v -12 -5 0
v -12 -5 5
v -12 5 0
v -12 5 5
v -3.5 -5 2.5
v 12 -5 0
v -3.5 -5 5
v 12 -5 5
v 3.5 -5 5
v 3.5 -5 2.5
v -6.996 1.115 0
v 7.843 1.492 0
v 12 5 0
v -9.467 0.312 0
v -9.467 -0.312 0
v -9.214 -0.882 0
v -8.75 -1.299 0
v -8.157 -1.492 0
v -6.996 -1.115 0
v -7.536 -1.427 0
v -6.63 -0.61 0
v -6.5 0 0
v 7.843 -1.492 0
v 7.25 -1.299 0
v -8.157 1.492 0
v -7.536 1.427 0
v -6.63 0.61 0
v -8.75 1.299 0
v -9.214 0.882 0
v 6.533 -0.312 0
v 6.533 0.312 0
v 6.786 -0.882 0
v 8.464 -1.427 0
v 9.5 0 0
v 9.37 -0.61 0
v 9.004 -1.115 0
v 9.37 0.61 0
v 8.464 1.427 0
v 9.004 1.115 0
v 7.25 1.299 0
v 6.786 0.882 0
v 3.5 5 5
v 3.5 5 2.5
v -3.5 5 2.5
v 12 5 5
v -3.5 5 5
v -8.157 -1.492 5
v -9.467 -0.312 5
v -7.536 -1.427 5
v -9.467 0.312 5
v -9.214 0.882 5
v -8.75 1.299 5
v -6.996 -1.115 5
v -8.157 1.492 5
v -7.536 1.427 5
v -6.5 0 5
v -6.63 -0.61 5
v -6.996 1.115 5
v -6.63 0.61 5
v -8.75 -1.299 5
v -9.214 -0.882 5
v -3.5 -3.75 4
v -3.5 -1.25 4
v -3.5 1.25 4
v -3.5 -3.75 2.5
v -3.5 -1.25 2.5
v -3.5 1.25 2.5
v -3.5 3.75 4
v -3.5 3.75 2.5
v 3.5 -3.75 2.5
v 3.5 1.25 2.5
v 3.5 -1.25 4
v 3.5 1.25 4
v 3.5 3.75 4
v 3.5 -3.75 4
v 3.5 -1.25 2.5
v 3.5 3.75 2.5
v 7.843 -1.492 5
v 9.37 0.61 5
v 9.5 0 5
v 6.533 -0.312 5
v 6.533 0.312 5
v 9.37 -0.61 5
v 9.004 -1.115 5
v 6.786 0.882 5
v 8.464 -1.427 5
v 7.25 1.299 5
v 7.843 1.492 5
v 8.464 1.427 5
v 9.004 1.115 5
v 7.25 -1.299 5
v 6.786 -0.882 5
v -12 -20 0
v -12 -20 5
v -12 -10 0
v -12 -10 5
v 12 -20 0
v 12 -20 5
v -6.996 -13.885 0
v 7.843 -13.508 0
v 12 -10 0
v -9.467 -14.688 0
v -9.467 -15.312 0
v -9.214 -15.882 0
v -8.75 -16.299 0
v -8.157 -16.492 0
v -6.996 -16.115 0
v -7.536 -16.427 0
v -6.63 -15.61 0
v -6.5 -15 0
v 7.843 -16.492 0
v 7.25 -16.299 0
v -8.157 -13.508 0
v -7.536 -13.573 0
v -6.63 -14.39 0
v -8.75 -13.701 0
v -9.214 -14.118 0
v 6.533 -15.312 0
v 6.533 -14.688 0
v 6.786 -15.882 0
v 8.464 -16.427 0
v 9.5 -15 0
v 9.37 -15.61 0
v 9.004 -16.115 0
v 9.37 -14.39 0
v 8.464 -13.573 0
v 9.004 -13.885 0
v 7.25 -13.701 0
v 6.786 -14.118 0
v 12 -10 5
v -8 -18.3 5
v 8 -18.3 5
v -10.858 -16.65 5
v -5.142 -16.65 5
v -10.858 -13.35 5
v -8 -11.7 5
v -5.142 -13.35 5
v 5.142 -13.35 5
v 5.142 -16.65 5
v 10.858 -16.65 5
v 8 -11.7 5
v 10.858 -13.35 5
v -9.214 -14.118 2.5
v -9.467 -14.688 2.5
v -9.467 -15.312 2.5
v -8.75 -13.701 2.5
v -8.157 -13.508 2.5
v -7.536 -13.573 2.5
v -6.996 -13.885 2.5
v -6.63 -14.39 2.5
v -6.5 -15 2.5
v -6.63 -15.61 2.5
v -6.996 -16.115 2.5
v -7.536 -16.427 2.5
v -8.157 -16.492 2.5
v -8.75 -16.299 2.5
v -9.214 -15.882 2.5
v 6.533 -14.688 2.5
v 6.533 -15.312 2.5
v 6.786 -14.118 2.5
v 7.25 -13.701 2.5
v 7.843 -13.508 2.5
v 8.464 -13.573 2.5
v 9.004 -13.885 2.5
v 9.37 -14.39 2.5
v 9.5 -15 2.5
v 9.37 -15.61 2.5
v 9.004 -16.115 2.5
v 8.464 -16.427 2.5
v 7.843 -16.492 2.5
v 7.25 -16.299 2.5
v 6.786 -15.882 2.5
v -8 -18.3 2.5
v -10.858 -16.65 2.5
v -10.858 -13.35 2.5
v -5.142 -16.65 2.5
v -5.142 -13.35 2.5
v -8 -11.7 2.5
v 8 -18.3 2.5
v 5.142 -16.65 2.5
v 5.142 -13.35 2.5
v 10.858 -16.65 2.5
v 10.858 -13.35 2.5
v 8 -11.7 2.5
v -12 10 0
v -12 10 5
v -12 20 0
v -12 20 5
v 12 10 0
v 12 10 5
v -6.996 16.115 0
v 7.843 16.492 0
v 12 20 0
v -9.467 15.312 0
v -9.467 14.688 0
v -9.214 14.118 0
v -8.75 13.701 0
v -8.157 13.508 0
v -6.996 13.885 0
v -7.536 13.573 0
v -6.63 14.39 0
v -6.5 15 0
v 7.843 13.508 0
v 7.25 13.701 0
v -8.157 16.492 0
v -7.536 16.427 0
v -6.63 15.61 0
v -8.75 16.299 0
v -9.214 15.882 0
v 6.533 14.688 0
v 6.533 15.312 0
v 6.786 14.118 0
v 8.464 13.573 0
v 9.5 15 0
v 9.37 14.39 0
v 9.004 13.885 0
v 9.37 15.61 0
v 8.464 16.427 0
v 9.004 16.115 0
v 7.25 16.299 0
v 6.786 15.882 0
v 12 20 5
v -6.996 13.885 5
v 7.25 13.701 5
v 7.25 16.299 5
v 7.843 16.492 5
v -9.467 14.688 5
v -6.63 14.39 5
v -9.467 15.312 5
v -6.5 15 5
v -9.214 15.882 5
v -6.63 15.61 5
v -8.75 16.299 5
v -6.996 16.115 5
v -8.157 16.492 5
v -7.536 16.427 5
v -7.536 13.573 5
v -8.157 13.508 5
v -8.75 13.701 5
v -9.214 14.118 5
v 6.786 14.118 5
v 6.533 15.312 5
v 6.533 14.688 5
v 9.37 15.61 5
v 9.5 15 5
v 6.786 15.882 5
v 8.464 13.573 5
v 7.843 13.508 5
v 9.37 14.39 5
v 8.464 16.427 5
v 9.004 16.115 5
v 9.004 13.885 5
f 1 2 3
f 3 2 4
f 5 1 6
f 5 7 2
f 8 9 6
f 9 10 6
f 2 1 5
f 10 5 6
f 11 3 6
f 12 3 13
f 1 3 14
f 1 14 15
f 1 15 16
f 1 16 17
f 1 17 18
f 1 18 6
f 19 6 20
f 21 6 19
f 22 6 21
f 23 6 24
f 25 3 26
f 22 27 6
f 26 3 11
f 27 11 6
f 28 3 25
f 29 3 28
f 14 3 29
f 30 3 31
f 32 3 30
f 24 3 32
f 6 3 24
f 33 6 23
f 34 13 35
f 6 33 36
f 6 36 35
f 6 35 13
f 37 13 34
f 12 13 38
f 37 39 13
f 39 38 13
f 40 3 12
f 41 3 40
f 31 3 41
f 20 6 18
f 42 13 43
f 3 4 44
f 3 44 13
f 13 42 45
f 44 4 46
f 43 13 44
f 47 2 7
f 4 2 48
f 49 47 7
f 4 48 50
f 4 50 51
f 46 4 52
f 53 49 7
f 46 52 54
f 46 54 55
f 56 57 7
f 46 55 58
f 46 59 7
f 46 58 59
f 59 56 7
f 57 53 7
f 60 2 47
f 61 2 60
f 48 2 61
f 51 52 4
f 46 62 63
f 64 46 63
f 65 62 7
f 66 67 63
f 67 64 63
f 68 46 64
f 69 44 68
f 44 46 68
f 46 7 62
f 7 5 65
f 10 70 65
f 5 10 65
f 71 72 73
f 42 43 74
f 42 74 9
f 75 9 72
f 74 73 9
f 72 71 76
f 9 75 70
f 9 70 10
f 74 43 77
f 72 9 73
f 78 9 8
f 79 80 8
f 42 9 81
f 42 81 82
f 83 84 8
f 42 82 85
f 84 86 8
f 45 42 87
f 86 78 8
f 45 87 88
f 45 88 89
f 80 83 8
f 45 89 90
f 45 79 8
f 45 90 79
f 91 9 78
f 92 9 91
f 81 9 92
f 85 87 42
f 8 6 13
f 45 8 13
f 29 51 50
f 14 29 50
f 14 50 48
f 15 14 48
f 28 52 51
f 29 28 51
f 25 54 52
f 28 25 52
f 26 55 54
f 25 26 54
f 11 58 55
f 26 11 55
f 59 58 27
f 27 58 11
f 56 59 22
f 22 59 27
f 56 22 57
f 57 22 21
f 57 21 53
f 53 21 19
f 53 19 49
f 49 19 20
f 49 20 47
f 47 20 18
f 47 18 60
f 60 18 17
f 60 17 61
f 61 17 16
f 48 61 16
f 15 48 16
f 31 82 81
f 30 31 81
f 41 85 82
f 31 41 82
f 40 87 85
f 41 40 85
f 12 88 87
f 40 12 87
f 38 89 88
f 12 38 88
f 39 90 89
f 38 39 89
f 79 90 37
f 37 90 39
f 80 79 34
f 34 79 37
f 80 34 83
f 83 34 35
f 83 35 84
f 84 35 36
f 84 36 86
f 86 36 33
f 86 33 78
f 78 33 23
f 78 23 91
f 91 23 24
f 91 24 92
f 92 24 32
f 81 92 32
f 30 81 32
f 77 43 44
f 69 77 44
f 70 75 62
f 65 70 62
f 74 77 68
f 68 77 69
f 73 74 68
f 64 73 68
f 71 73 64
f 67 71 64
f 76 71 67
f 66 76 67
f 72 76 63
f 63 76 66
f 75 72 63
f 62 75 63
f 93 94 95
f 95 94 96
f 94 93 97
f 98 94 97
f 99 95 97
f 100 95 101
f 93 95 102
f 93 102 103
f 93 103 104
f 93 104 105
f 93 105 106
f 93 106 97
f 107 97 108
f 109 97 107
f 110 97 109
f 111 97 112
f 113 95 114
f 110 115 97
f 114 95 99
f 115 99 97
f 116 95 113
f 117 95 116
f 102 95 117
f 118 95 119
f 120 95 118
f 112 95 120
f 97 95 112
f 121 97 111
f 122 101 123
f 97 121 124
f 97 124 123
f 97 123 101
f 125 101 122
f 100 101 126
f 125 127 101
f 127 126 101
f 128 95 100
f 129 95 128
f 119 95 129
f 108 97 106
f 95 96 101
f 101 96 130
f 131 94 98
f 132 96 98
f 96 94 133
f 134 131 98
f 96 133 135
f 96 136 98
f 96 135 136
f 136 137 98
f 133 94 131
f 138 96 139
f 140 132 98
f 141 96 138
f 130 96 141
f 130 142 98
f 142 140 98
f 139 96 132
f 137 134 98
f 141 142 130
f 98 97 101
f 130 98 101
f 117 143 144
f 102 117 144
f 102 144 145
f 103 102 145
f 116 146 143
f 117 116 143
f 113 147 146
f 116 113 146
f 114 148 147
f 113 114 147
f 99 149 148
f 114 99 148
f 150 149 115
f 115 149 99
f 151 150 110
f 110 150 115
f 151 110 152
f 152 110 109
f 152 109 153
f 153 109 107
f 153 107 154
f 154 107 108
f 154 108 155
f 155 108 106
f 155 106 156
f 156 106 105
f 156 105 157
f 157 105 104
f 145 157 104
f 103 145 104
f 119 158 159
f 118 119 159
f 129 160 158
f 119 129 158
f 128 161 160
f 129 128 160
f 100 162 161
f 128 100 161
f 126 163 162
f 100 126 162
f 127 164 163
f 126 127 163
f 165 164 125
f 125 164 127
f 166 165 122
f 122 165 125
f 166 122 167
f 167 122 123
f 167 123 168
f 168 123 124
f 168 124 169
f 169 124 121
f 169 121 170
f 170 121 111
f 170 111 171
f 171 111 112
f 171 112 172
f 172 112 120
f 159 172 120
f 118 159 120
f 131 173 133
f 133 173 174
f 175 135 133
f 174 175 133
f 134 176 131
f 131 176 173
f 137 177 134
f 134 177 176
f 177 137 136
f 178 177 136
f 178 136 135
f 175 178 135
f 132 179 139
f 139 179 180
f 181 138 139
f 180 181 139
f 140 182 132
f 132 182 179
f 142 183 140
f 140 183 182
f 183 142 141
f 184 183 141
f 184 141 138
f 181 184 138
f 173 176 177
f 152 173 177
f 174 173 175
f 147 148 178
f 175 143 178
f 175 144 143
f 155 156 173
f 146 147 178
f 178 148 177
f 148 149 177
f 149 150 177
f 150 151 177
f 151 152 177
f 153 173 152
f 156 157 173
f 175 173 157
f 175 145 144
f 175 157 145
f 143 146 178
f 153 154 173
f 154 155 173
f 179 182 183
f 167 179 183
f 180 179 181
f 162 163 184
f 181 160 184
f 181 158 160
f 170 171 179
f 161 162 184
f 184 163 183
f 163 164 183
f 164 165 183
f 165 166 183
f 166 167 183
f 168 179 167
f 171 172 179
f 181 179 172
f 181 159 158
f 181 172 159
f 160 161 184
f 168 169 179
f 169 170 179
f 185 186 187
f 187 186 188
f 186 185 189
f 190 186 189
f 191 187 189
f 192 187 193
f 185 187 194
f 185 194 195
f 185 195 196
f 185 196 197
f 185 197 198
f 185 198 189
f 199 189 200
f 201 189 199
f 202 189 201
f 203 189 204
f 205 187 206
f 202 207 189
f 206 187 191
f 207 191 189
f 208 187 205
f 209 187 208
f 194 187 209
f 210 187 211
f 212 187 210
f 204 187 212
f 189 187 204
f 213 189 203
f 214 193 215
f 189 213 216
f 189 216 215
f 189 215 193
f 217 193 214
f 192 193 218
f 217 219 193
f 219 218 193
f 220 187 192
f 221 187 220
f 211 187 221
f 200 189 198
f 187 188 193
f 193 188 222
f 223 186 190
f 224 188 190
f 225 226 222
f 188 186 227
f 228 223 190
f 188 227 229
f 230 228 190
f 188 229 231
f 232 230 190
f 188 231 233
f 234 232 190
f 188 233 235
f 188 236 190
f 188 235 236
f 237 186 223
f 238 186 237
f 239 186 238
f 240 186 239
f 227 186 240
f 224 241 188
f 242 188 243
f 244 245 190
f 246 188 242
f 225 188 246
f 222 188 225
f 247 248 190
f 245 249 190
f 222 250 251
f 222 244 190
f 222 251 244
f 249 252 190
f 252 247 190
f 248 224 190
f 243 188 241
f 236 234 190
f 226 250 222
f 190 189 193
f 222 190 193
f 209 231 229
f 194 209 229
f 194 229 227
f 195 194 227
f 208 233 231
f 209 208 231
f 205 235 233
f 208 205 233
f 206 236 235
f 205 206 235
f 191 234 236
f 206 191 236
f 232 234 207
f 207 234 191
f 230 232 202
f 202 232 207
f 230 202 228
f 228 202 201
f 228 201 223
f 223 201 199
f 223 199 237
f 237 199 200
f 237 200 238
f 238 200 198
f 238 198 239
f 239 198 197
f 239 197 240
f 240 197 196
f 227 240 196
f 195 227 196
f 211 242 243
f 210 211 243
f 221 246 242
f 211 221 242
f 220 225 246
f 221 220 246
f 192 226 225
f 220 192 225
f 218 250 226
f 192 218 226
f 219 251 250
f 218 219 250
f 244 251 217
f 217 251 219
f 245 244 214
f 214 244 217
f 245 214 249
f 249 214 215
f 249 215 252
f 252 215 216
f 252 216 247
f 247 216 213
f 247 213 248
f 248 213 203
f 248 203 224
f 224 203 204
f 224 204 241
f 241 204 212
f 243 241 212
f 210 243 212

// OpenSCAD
w1=24;
h1=10;
z=5;
a=4;
b=7;
module beltclamp(nut,belt) {
	translate([0,0,z/2])
	difference() {
		cube([w1,h1,z],true);
		if (nut) translate([w1/2-a,0,0]) rotate([0,0,90]) cylinder(5,r=6.6/2,$fa=60);
		translate([w1/2-a,0,-z/2-0.5]) cylinder(z+1,r=1.5,$fn=15);
		if (nut) translate([-w1/2+a,0,0]) rotate([0,0,90]) cylinder(5,r=6.6/2,$fa=60);
		translate([-w1/2+a,0,-z/2-0.5]) cylinder(z+1,r=1.5,$fn=15);
		
		if (belt) {
			translate([0,5,z-2.5]) cube([b,2.5,z],true);
			translate([0,0,z-2.5]) cube([b,2.5,z],true);
			translate([0,-5,z-2.5]) cube([b,2.5,z],true);
			translate([0,0,z-1]) cube([b,10,z],true);
		}
	}
}

beltclamp(false,true);
translate([0,-h1-5,0]) beltclamp(true);
translate([0,h1+5,0]) beltclamp();
